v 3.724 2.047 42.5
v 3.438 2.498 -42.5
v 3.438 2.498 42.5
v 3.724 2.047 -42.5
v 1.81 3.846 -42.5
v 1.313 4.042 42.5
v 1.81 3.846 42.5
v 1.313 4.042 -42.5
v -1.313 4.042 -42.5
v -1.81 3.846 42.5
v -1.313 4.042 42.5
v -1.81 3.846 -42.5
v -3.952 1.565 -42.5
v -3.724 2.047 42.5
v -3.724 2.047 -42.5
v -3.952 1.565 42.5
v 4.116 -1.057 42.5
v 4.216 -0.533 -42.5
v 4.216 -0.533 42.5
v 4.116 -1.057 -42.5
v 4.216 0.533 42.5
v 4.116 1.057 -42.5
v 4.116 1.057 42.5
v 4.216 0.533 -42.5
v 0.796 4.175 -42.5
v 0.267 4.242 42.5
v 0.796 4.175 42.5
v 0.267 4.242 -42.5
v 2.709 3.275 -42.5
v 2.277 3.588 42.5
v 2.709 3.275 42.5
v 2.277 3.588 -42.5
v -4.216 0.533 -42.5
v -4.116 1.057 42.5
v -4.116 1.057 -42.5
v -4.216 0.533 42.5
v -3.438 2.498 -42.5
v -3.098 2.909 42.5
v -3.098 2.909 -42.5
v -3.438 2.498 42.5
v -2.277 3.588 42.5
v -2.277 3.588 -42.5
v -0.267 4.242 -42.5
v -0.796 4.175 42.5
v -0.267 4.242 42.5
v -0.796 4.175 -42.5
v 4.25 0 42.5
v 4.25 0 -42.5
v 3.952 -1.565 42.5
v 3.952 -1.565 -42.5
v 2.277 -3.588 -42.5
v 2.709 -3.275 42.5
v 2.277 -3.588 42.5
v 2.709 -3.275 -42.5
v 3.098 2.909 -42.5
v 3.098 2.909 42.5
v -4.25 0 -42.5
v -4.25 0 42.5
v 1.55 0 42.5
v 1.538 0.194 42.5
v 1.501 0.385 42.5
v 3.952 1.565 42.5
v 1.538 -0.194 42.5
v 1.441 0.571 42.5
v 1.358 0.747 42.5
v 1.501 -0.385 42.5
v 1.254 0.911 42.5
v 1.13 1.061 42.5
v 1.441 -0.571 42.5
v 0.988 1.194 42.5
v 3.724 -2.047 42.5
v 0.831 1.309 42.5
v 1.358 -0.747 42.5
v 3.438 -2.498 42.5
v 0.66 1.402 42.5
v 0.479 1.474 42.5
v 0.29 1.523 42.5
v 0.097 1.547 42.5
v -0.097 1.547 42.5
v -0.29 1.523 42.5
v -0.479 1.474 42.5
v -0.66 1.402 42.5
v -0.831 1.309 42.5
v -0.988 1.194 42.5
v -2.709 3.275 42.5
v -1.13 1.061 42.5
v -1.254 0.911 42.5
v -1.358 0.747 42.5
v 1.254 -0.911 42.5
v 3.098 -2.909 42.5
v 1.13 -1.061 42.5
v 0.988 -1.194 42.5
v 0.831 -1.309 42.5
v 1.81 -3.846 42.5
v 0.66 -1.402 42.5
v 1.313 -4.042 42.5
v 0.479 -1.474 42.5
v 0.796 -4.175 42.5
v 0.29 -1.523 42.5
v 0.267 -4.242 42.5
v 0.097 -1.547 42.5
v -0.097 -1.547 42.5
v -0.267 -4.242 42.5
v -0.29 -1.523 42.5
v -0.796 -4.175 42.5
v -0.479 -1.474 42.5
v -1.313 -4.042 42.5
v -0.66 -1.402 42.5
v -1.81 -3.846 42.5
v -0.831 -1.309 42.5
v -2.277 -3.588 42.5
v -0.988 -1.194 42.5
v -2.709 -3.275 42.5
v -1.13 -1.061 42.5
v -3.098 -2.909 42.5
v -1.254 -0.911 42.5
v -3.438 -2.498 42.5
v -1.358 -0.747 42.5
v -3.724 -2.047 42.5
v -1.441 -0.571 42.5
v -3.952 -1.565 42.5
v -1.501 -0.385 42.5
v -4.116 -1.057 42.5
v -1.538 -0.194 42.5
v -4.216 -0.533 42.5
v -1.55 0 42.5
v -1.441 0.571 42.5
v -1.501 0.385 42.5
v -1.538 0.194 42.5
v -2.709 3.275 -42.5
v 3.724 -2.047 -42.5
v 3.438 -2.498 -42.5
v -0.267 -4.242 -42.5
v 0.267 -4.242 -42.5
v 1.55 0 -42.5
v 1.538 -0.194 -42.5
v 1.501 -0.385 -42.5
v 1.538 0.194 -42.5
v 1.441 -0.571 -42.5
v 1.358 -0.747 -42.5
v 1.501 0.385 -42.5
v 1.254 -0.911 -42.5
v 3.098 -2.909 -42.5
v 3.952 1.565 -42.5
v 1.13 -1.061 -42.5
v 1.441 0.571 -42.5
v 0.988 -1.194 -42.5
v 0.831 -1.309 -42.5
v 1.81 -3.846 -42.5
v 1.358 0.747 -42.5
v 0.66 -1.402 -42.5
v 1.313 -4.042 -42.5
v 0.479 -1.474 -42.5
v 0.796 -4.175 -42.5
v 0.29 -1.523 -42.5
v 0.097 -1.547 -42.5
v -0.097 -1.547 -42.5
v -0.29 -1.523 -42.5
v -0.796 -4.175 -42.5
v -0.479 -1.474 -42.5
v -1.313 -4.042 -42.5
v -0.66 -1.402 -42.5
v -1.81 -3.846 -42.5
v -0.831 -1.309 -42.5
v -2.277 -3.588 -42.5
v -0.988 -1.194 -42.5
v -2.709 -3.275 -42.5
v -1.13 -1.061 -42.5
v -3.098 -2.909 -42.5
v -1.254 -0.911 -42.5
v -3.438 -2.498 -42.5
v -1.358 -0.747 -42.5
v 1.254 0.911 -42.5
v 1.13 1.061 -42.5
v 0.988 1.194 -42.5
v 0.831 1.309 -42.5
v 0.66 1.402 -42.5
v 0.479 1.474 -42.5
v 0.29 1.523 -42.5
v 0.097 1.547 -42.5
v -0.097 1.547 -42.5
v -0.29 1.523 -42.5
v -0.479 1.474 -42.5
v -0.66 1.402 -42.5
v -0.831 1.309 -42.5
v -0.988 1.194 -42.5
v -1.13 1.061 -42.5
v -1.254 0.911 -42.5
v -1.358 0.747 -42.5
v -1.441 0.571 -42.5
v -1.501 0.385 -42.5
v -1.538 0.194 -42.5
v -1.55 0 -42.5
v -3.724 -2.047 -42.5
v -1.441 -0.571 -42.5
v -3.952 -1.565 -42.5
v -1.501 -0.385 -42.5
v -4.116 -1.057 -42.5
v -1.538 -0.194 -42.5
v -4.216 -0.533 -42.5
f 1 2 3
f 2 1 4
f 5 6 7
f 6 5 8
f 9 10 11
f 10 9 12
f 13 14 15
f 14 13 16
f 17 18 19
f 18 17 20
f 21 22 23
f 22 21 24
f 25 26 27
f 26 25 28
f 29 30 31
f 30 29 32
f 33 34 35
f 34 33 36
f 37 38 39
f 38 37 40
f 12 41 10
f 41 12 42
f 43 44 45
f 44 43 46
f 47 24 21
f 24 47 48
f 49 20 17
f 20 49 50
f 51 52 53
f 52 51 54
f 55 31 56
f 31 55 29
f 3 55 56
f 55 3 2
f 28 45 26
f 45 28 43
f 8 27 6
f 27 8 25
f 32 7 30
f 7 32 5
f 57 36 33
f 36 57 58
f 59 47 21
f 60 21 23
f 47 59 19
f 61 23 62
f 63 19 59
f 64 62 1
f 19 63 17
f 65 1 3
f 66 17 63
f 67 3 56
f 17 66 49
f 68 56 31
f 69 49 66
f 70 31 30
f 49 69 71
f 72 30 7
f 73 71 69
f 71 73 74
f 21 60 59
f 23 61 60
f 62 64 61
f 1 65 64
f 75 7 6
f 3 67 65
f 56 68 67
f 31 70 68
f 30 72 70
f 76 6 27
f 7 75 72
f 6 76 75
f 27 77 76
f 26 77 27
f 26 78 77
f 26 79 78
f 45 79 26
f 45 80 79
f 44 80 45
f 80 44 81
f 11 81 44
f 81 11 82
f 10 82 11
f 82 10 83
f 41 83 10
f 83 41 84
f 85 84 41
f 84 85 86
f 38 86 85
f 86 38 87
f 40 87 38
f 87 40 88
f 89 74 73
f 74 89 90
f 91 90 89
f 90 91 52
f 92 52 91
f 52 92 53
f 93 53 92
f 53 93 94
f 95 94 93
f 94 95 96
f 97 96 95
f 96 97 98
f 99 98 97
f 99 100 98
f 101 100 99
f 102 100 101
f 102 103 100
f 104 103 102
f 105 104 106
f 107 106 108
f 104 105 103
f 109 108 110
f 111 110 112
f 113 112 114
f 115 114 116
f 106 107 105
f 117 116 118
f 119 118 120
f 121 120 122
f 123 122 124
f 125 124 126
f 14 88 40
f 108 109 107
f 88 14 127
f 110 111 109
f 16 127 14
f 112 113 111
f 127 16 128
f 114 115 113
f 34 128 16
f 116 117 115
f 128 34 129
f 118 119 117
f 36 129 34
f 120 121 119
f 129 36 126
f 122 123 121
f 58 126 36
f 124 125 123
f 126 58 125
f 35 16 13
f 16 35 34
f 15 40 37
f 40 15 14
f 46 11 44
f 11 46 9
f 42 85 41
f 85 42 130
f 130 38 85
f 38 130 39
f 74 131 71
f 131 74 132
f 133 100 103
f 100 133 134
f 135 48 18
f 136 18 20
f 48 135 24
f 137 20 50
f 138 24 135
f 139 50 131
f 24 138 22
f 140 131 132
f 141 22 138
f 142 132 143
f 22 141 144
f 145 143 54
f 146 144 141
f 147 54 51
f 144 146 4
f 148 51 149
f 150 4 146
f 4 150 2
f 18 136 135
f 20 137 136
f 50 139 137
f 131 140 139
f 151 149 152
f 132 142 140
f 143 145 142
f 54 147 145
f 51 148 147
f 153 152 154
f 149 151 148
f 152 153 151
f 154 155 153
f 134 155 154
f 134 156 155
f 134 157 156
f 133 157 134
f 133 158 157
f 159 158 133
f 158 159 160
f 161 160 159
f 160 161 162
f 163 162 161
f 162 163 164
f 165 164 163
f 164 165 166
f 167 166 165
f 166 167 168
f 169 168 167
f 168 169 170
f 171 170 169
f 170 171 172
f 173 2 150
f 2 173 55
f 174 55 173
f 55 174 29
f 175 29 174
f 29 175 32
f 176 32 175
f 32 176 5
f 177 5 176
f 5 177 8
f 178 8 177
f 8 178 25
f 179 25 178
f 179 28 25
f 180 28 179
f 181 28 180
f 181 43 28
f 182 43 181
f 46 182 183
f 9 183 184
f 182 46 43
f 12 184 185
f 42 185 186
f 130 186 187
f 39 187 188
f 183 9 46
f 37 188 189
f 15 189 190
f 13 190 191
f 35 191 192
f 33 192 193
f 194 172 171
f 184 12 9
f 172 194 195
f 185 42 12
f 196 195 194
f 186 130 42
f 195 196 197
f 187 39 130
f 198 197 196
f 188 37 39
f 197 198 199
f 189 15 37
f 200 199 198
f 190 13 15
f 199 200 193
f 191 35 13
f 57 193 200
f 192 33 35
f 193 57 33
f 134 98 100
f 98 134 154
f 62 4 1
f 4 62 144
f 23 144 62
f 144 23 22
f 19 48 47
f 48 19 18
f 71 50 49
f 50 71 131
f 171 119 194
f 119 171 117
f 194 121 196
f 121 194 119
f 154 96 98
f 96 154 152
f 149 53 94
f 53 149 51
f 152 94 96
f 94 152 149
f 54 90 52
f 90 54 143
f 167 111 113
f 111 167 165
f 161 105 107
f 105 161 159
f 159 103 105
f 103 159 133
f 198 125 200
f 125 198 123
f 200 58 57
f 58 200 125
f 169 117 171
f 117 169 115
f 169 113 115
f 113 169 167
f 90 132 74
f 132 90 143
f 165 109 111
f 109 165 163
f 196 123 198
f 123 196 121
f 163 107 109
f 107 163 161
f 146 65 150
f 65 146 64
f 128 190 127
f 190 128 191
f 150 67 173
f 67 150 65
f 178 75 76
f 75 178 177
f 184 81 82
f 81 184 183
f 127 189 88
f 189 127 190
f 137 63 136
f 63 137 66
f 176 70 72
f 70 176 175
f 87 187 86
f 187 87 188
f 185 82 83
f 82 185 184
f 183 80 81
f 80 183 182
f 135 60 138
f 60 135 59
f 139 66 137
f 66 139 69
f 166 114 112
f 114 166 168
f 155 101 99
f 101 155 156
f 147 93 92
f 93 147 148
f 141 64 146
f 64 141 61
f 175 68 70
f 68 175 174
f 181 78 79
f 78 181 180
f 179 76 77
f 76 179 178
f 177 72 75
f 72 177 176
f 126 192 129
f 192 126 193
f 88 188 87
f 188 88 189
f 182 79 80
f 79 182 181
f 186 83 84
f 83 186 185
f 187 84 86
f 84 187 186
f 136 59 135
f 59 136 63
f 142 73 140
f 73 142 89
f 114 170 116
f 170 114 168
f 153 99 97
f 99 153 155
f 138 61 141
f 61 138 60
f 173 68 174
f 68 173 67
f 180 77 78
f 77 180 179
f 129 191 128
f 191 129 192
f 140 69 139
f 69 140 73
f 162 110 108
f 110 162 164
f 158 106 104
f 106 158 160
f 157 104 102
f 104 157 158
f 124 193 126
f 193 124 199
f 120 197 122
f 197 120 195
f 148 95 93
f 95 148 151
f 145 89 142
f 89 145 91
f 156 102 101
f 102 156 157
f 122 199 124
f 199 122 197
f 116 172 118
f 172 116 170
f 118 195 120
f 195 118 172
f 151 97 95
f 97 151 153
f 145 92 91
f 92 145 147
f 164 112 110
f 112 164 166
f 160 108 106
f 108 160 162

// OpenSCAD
$fn = 50;


difference() {
	union() {
		translate(v = [0, 0, -42.5000000000]) {
			cylinder(h = 85, r = 4.2500000000);
		}
	}
	union() {
		translate(v = [0, 0, -100.0000000000]) {
			cylinder(h = 200, r = 1.5500000000);
		}
	}
}
